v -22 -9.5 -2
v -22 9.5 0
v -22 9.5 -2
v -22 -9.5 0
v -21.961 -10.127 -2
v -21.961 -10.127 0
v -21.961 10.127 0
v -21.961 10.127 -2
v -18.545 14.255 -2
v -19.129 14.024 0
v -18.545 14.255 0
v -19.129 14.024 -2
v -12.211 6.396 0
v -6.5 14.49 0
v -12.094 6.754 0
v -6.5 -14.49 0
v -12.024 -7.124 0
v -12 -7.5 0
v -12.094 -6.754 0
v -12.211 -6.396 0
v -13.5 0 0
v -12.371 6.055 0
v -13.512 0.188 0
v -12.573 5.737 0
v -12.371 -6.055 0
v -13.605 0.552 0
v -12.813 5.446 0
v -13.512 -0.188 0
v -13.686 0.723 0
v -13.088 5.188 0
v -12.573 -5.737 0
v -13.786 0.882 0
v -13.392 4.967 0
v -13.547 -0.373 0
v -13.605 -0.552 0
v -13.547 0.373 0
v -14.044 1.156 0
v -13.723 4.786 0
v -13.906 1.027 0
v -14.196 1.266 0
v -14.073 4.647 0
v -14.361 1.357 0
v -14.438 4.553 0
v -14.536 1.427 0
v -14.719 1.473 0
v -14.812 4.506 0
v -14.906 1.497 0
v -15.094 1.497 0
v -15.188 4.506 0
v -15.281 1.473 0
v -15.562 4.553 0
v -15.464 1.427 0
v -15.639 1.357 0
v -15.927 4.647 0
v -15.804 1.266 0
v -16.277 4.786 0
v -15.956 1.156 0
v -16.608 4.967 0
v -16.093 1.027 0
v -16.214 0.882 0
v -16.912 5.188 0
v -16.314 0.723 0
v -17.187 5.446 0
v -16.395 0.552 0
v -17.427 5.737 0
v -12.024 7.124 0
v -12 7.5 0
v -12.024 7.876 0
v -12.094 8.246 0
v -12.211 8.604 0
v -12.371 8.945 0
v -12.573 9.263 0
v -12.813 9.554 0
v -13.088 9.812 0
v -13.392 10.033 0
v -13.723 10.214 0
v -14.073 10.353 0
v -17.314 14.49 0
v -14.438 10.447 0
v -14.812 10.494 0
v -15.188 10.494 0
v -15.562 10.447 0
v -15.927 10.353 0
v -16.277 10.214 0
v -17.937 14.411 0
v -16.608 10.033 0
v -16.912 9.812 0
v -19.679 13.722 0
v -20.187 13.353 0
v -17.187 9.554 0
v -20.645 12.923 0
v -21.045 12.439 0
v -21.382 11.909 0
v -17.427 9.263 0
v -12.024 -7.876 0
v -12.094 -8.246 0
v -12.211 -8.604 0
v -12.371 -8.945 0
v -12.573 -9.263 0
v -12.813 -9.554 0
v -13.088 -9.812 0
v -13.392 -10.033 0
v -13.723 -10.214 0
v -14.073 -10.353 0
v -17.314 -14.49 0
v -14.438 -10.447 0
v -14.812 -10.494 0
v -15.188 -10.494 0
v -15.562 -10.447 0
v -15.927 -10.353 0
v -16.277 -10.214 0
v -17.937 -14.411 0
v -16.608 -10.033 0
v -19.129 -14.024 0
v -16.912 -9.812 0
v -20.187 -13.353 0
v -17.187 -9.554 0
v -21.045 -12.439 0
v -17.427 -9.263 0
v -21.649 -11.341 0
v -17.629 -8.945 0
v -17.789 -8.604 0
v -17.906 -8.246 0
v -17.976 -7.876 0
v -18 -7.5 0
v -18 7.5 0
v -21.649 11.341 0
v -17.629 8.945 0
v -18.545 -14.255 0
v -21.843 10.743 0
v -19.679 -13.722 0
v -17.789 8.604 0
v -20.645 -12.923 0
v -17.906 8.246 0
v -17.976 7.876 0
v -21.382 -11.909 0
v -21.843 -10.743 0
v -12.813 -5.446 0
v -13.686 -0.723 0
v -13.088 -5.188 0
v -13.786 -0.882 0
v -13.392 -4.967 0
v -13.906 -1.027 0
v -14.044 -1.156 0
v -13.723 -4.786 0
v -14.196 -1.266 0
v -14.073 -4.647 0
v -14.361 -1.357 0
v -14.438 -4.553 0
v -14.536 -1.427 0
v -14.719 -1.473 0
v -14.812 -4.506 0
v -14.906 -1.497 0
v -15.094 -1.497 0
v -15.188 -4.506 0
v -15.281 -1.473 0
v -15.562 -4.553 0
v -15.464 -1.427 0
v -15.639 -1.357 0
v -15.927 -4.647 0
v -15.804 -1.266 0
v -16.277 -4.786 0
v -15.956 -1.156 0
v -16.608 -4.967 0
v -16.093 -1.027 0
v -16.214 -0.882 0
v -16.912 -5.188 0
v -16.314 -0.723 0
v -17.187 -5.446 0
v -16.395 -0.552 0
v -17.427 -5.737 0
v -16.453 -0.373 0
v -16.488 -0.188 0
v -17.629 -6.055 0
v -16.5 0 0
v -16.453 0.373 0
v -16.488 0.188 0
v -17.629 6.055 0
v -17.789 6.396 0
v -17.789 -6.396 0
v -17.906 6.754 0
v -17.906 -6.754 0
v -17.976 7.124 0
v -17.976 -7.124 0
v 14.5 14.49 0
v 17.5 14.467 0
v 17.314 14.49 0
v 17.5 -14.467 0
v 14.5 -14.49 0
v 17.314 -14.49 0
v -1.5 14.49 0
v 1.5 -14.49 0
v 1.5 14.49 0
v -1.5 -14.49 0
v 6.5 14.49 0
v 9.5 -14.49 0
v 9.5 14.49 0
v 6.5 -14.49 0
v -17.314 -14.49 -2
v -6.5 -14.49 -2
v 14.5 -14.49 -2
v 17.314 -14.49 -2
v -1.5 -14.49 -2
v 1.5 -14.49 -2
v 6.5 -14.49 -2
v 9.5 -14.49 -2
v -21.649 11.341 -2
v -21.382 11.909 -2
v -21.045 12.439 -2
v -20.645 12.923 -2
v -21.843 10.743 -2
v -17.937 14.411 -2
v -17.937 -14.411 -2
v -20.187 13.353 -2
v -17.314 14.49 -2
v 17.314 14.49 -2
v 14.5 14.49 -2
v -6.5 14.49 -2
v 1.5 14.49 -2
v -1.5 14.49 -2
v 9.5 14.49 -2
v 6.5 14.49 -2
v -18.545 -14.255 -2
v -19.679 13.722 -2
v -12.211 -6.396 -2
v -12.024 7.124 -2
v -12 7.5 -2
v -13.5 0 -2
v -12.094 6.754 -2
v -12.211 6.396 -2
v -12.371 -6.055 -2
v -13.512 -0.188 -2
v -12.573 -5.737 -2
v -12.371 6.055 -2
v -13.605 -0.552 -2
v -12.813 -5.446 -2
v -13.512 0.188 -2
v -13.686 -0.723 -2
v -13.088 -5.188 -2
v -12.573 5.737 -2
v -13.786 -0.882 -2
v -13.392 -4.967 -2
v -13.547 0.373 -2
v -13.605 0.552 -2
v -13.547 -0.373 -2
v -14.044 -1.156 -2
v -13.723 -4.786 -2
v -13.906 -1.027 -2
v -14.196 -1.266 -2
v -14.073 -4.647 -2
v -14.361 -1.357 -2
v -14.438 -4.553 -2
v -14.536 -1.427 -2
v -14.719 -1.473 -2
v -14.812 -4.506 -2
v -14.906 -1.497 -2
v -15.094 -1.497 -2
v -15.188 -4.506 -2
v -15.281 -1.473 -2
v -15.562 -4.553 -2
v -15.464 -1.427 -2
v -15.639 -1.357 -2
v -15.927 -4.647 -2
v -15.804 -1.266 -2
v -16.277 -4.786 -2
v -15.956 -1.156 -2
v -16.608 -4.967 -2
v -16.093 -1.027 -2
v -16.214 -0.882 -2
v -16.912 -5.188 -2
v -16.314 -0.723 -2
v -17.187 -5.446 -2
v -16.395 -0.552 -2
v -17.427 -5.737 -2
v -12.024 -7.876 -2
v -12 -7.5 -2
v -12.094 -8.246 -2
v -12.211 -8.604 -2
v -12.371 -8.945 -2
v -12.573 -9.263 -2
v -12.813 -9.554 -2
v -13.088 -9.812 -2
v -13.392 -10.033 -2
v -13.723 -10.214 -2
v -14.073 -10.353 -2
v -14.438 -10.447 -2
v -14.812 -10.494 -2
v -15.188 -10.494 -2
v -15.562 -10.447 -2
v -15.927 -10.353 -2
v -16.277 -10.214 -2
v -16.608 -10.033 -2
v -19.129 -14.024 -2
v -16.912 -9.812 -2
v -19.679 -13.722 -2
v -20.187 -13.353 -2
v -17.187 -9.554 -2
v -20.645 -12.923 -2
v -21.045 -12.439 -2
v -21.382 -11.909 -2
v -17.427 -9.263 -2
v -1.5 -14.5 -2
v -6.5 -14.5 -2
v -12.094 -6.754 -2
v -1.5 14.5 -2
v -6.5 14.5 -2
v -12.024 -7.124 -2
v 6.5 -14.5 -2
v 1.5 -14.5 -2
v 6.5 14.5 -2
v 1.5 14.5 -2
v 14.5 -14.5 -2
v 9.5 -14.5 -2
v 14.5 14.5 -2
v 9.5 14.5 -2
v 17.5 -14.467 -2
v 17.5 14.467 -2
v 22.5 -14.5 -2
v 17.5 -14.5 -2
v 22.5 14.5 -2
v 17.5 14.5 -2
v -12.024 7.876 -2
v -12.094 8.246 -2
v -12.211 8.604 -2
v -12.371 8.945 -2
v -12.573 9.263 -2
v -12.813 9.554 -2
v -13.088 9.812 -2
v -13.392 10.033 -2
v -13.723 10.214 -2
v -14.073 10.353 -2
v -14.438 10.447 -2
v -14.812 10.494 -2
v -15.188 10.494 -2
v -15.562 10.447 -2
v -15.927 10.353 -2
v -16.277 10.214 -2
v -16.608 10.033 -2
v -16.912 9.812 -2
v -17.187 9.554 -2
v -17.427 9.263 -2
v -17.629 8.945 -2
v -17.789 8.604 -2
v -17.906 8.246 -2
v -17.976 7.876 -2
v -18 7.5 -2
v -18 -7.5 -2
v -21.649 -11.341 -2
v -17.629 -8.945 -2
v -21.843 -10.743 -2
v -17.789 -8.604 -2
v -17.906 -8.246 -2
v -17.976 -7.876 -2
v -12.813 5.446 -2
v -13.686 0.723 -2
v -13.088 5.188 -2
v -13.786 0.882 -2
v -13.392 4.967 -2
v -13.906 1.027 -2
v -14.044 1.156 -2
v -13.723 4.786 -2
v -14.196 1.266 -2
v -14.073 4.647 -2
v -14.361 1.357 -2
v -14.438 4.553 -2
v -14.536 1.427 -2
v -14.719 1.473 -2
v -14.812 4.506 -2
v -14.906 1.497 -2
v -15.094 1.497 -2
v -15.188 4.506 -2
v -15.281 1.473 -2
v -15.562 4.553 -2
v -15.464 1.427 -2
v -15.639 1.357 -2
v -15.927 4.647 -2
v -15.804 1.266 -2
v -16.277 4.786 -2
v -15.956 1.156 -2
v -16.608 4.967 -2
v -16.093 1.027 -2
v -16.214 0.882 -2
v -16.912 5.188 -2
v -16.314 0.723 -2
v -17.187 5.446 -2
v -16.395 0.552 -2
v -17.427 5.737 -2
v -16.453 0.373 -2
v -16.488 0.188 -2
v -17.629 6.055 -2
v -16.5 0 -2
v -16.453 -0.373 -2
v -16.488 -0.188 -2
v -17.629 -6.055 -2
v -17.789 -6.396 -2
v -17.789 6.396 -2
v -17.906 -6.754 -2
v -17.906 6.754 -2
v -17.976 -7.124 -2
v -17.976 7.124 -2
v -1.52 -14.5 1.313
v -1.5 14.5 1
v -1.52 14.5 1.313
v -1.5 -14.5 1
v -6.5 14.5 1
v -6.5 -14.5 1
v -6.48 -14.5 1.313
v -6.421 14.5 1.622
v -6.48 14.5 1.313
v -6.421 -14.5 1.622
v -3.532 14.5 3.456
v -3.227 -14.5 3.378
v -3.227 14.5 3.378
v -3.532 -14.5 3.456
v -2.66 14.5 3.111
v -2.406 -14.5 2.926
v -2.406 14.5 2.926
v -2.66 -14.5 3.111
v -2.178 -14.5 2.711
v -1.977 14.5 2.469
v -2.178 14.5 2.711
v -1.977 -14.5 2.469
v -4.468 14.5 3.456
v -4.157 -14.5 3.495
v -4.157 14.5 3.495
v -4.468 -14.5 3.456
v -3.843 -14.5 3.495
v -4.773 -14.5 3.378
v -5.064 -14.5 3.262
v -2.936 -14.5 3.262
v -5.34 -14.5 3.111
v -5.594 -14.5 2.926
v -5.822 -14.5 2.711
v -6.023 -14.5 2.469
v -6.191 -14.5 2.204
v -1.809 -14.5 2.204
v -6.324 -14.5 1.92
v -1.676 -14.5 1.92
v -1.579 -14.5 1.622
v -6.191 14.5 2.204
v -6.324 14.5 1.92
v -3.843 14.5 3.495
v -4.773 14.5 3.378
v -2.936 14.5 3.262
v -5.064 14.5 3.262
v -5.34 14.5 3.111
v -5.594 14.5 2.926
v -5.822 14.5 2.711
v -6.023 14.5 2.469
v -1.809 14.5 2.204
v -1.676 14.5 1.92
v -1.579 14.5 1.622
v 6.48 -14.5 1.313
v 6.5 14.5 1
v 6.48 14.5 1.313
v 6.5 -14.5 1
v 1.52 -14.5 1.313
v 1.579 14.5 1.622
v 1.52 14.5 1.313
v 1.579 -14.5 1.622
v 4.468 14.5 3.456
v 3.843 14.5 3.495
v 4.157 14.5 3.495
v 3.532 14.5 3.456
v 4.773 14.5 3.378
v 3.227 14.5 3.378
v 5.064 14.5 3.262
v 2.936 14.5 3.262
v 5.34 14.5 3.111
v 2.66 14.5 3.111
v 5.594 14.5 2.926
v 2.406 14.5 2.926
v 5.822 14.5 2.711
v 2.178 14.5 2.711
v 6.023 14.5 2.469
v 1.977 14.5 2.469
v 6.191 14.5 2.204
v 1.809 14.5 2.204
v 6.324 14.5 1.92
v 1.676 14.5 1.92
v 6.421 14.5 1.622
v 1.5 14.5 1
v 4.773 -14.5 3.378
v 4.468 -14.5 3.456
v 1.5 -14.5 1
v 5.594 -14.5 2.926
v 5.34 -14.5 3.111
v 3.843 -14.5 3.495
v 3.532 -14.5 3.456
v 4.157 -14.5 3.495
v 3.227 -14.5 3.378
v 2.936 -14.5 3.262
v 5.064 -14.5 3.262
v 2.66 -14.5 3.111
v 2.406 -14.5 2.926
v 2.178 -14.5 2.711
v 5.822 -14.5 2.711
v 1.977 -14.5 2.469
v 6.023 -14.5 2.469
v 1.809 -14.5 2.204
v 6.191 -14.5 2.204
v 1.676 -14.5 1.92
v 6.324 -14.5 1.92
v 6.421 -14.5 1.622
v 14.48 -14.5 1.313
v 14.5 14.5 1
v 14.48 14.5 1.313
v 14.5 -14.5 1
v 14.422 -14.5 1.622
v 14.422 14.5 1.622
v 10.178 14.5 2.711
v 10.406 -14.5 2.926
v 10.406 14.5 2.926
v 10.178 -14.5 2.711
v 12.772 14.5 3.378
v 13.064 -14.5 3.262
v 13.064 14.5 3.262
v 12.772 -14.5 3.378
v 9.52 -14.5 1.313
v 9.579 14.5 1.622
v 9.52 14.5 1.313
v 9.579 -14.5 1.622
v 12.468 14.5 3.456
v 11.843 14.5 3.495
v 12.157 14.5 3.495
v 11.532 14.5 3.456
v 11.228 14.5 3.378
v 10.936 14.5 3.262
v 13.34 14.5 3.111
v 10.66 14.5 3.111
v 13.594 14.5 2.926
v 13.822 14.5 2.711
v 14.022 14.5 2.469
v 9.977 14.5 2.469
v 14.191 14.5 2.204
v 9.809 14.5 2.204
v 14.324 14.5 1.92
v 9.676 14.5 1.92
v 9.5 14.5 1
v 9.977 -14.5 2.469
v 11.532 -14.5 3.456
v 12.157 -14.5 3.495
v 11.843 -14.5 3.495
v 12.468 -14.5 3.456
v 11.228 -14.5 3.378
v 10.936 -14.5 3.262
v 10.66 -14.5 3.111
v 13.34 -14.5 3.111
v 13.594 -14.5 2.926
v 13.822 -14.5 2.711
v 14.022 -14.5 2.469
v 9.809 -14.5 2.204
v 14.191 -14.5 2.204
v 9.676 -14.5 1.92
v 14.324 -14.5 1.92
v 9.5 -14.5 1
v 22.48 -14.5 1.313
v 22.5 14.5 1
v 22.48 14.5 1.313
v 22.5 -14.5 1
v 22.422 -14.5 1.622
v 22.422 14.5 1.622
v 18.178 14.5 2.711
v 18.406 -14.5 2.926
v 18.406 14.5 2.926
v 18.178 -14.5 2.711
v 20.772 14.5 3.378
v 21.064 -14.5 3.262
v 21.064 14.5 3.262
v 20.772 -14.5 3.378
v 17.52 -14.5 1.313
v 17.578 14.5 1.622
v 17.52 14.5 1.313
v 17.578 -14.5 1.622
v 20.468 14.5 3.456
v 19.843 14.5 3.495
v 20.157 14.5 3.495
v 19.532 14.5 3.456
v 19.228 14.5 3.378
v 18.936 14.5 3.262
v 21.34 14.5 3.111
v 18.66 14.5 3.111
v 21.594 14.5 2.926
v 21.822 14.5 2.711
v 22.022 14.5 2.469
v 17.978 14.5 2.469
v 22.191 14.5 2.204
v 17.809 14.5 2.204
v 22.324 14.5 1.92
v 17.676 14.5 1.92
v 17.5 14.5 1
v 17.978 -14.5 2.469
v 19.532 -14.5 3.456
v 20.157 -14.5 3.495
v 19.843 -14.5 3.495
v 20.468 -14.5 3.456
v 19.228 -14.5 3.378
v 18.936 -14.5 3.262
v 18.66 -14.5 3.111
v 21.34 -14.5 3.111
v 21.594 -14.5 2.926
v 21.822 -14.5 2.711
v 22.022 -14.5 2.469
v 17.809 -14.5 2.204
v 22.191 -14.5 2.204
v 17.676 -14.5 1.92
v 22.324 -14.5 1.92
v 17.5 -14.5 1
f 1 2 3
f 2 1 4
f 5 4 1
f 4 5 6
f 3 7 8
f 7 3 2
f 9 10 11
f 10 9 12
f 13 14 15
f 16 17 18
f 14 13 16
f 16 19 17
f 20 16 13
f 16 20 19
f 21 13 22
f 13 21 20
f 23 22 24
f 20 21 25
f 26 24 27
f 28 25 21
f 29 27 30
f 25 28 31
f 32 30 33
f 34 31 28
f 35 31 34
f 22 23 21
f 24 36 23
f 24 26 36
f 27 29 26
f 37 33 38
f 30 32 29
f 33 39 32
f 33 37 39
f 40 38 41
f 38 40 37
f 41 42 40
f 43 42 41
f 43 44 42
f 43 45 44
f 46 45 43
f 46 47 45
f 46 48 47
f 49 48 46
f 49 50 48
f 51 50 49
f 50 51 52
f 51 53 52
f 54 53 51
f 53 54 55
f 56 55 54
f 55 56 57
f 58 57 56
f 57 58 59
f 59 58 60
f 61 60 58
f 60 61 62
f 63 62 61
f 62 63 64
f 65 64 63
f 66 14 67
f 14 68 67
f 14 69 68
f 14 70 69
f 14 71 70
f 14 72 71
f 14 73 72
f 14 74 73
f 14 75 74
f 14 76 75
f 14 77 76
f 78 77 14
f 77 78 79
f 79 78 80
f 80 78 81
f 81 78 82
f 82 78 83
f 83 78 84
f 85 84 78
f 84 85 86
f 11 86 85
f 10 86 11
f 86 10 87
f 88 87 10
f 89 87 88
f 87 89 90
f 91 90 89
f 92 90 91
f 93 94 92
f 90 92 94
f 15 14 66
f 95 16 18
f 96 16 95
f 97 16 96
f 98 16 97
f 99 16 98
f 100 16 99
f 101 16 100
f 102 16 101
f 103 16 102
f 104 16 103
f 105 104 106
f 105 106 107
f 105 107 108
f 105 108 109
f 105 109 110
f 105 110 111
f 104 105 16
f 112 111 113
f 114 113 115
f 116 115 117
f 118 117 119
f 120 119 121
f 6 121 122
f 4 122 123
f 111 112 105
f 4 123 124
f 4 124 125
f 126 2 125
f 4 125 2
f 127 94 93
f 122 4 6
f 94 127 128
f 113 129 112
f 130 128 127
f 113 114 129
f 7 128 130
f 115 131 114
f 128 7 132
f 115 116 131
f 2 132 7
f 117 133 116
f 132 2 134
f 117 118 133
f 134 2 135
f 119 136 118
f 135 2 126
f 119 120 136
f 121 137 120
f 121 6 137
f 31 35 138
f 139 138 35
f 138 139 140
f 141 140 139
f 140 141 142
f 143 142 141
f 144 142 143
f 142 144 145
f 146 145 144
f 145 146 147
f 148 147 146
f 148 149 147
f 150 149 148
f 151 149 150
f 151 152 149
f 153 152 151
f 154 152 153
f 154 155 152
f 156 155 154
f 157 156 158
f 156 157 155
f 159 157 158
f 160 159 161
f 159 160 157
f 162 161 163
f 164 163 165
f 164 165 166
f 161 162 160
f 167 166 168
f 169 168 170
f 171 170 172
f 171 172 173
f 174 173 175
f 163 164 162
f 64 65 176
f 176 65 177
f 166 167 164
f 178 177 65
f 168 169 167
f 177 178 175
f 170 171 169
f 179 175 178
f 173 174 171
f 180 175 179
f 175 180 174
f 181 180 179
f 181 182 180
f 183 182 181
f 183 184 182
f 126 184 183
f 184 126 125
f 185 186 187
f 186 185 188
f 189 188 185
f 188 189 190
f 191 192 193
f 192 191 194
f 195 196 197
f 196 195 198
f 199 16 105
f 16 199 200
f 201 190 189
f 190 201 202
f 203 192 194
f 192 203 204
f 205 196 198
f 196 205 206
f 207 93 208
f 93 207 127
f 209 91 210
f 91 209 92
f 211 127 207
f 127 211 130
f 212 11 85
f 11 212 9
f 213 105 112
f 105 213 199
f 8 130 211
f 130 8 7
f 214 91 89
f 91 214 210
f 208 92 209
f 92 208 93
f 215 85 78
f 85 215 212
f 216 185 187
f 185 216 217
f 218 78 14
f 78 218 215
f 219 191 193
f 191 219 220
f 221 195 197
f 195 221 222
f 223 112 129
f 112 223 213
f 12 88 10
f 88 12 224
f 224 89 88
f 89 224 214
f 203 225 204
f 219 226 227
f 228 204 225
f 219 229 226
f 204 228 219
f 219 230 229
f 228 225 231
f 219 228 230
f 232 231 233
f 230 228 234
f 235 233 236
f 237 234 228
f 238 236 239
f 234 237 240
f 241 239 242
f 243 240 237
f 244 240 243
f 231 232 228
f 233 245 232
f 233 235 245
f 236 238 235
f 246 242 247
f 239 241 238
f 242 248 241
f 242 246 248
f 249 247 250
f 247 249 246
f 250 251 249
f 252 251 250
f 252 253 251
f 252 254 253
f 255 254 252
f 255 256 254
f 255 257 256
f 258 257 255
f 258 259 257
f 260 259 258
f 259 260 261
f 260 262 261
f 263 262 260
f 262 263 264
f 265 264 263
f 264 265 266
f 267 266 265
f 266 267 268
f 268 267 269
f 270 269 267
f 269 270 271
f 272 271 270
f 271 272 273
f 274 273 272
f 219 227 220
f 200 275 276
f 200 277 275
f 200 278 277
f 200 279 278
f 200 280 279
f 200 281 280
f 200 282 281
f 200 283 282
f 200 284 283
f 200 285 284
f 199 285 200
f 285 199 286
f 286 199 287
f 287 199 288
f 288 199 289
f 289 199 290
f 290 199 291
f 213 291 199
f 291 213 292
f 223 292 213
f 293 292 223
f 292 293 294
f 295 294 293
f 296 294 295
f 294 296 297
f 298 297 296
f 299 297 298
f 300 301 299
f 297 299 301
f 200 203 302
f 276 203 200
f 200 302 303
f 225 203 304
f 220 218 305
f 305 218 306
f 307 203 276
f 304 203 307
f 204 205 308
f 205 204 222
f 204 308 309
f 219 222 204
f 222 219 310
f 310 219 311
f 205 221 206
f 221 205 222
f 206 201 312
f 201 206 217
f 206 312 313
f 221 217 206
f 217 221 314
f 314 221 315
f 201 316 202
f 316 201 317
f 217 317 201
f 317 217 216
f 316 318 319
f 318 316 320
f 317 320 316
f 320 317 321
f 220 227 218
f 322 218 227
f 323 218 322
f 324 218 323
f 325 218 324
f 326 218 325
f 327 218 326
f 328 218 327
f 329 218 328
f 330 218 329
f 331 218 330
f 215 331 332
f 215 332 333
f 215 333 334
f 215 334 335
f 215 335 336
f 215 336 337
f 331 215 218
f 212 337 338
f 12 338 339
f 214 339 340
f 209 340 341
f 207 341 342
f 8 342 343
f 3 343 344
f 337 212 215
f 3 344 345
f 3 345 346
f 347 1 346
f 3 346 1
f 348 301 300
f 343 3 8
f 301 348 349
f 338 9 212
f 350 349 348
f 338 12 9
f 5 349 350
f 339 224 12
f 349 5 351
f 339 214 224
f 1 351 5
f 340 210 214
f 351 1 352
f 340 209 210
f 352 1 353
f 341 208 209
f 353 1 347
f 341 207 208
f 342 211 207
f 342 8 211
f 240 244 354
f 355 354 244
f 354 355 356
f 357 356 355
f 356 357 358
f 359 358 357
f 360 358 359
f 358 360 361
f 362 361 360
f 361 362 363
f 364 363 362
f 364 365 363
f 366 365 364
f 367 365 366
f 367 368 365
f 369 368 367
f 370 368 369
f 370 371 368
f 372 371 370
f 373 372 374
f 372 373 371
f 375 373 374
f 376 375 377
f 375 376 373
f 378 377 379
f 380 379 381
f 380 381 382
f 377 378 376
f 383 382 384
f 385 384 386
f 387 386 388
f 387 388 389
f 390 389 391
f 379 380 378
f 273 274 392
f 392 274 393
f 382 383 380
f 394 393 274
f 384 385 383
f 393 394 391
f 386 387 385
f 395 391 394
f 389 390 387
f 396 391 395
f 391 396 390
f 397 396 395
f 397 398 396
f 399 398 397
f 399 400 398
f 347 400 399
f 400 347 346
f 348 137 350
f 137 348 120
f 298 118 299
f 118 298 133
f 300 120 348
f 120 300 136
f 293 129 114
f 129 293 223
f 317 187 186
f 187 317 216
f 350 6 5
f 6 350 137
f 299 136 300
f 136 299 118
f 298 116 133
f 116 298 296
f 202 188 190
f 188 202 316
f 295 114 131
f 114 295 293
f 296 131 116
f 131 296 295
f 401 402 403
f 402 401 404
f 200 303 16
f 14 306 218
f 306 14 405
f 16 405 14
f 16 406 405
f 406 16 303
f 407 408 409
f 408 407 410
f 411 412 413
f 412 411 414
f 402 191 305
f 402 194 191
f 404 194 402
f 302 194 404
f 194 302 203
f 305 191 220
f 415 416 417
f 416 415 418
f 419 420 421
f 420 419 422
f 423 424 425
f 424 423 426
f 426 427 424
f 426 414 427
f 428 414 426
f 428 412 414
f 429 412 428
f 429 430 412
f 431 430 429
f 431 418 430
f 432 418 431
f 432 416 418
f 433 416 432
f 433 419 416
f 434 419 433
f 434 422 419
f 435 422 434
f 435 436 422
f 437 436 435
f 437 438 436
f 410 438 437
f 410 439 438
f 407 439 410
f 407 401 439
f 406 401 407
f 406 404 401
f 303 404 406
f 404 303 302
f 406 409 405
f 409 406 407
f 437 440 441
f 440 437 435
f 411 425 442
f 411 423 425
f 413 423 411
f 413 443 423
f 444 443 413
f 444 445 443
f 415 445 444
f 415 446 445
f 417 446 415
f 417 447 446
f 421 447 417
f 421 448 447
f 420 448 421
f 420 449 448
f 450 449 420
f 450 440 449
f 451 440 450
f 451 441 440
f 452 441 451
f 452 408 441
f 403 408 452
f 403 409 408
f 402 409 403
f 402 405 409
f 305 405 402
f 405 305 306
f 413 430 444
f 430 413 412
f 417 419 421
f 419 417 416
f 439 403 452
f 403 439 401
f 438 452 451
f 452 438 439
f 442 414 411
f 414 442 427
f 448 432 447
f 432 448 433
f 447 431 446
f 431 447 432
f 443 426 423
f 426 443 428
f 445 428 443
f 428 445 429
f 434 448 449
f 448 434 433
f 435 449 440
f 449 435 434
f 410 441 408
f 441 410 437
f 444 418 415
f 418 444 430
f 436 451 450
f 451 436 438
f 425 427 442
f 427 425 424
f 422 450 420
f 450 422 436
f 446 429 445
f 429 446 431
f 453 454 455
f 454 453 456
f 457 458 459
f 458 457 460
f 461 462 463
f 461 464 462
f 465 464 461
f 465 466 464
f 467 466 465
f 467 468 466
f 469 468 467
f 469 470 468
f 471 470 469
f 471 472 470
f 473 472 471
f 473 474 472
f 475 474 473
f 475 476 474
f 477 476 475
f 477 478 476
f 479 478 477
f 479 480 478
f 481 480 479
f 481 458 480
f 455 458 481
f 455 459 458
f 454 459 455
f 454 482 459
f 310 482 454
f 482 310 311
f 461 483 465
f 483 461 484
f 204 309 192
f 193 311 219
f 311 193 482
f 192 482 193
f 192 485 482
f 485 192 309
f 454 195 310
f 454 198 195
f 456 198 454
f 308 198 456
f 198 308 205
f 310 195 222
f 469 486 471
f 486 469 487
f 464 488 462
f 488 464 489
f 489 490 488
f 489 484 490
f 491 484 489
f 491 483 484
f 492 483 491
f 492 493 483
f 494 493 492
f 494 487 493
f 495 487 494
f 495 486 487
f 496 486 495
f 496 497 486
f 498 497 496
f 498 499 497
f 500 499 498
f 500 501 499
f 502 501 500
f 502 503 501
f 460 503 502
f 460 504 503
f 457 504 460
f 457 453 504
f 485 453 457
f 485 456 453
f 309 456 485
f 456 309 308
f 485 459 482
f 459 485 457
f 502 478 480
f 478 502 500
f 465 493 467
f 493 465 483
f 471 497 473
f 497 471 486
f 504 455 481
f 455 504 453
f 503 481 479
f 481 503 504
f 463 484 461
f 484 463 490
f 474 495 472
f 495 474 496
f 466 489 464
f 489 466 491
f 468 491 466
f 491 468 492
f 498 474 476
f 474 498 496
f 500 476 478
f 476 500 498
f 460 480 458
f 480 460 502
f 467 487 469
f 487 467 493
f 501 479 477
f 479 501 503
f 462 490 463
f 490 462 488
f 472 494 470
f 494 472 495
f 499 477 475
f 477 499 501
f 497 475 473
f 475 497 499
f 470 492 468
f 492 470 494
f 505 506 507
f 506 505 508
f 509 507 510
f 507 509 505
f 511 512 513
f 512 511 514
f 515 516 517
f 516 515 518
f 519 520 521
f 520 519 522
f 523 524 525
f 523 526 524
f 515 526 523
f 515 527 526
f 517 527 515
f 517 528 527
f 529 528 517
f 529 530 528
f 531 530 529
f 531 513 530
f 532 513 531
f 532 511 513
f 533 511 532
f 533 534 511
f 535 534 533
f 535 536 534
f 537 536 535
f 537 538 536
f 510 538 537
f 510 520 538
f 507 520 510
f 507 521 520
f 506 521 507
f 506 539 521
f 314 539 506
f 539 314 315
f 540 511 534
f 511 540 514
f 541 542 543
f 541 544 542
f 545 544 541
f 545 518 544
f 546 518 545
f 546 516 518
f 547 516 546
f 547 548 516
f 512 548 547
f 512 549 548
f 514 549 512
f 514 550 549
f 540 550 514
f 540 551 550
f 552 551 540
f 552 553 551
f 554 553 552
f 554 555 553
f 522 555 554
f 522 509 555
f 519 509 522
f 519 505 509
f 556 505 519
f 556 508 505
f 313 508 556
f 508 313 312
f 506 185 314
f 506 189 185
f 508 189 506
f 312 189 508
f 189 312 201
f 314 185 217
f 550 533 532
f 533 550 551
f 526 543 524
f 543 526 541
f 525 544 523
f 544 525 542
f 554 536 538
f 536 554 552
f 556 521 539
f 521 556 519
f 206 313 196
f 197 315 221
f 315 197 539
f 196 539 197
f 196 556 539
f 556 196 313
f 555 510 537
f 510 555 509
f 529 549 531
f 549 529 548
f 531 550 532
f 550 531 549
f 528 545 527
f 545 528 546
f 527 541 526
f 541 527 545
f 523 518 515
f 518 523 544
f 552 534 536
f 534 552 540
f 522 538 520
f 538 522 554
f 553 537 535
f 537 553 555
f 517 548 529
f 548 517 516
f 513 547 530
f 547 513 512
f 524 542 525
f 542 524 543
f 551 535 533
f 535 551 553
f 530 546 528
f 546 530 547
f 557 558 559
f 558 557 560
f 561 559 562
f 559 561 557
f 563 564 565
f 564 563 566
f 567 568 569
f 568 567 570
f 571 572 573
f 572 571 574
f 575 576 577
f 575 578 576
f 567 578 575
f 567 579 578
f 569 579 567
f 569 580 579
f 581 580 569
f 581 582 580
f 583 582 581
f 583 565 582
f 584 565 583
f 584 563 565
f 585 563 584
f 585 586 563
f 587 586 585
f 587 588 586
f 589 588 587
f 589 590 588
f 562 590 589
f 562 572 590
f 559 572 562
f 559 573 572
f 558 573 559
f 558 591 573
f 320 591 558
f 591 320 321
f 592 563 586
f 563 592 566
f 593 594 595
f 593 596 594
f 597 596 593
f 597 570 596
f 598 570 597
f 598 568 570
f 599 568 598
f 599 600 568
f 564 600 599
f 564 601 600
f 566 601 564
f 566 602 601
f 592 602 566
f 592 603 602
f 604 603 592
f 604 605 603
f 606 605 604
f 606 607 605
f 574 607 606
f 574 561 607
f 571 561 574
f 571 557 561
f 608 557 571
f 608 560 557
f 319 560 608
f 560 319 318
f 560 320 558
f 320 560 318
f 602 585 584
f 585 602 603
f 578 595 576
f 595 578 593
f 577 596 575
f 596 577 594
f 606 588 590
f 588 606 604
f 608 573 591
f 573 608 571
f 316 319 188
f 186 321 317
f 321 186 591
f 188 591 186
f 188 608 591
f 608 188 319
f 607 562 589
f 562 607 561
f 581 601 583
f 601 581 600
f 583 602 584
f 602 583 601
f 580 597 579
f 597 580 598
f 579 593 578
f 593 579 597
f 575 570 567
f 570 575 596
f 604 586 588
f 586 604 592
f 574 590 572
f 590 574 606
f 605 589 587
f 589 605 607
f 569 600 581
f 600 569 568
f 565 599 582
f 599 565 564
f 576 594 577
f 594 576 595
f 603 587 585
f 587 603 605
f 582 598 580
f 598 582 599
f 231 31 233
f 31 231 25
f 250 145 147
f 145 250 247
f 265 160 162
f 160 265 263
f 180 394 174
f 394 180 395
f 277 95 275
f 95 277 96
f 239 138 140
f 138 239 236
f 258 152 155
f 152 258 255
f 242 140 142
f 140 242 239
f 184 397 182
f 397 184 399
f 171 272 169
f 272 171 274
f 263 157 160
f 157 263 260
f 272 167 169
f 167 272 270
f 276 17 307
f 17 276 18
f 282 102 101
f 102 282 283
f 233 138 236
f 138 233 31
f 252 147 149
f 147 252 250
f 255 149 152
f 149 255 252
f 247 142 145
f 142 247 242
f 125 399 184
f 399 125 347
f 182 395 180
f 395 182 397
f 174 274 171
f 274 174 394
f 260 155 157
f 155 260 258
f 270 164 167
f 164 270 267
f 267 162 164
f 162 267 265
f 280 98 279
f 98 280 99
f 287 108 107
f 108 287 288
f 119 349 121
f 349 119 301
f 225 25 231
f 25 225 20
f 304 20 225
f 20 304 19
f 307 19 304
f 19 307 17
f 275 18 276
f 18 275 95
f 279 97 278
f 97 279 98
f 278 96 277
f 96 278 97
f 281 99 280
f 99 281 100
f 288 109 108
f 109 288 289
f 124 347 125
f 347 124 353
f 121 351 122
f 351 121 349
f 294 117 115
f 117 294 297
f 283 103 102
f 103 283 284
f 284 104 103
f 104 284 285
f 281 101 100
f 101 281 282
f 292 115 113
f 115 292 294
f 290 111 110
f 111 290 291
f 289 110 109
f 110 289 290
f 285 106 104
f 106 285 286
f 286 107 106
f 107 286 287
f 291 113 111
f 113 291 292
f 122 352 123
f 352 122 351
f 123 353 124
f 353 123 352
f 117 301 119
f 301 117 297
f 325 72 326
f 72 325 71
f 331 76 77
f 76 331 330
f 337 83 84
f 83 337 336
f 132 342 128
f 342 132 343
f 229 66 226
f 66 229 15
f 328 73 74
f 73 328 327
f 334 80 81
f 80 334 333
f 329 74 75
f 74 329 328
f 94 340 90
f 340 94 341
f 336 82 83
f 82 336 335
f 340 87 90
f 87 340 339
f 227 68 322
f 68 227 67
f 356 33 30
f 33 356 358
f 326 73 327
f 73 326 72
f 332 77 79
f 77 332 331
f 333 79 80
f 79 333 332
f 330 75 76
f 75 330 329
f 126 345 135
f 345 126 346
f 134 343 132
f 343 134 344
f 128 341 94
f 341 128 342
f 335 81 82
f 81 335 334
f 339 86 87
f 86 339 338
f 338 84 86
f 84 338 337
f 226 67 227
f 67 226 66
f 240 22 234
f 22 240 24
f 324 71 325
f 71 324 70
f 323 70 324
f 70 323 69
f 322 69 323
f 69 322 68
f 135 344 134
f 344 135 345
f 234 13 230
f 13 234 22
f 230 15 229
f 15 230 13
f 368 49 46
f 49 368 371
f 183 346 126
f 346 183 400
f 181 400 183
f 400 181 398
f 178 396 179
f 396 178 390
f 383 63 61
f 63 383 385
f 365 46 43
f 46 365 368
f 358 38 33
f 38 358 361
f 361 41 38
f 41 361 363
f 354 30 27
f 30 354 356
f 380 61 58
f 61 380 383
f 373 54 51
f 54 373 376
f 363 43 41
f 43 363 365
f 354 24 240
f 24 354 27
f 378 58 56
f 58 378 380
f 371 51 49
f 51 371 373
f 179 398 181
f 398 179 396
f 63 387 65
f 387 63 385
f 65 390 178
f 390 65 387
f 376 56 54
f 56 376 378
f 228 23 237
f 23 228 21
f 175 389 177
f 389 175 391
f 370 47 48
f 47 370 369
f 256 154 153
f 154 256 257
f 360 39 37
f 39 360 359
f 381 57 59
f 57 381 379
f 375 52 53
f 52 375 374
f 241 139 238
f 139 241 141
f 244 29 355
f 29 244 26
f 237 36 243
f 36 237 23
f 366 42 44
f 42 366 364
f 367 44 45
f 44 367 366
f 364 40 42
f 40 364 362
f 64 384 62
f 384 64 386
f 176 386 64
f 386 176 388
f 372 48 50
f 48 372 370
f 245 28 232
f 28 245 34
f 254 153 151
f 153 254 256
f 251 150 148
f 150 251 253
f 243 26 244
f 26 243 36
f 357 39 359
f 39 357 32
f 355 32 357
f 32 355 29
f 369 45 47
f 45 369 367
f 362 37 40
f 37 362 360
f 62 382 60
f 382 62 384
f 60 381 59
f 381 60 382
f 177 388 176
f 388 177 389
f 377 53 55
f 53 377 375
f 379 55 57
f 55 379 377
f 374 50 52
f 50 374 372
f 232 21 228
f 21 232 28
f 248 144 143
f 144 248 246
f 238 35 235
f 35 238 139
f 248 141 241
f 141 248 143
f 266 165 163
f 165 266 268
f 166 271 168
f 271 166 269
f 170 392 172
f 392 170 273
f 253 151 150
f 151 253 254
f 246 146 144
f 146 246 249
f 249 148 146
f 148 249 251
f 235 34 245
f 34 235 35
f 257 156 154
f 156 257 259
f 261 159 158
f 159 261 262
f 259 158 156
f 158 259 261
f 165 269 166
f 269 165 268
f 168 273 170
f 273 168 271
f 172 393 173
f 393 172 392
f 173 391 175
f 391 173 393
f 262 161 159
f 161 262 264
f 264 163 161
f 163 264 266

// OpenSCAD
$fn = 50;


difference() {
	union() {
		translate(v = [0, 0, -2]) {
			hull() {
				translate(v = [-17.0000000000, 9.5000000000, 0]) {
					cylinder(h = 2, r = 5);
				}
				translate(v = [17.0000000000, 9.5000000000, 0]) {
					cylinder(h = 2, r = 5);
				}
				translate(v = [-17.0000000000, -9.5000000000, 0]) {
					cylinder(h = 2, r = 5);
				}
				translate(v = [17.0000000000, -9.5000000000, 0]) {
					cylinder(h = 2, r = 5);
				}
			}
		}
		translate(v = [-4.0000000000, 14.5000000000, -1.5000000000]) {
			rotate(a = [90, 0, 0]) {
				hull() {
					translate(v = [-0.0000000000, 2.5000000000, 0]) {
						cylinder(h = 29, r = 2.5000000000);
					}
					translate(v = [0.0000000000, 2.5000000000, 0]) {
						cylinder(h = 29, r = 2.5000000000);
					}
					translate(v = [-0.0000000000, -2.5000000000, 0]) {
						cylinder(h = 29, r = 2.5000000000);
					}
					translate(v = [0.0000000000, -2.5000000000, 0]) {
						cylinder(h = 29, r = 2.5000000000);
					}
				}
			}
		}
		translate(v = [4.0000000000, 14.5000000000, -1.5000000000]) {
			rotate(a = [90, 0, 0]) {
				hull() {
					translate(v = [-0.0000000000, 2.5000000000, 0]) {
						cylinder(h = 29, r = 2.5000000000);
					}
					translate(v = [0.0000000000, 2.5000000000, 0]) {
						cylinder(h = 29, r = 2.5000000000);
					}
					translate(v = [-0.0000000000, -2.5000000000, 0]) {
						cylinder(h = 29, r = 2.5000000000);
					}
					translate(v = [0.0000000000, -2.5000000000, 0]) {
						cylinder(h = 29, r = 2.5000000000);
					}
				}
			}
		}
		translate(v = [12.0000000000, 14.5000000000, -1.5000000000]) {
			rotate(a = [90, 0, 0]) {
				hull() {
					translate(v = [-0.0000000000, 2.5000000000, 0]) {
						cylinder(h = 29, r = 2.5000000000);
					}
					translate(v = [0.0000000000, 2.5000000000, 0]) {
						cylinder(h = 29, r = 2.5000000000);
					}
					translate(v = [-0.0000000000, -2.5000000000, 0]) {
						cylinder(h = 29, r = 2.5000000000);
					}
					translate(v = [0.0000000000, -2.5000000000, 0]) {
						cylinder(h = 29, r = 2.5000000000);
					}
				}
			}
		}
		translate(v = [20.0000000000, 14.5000000000, -1.5000000000]) {
			rotate(a = [90, 0, 0]) {
				hull() {
					translate(v = [-0.0000000000, 2.5000000000, 0]) {
						cylinder(h = 29, r = 2.5000000000);
					}
					translate(v = [0.0000000000, 2.5000000000, 0]) {
						cylinder(h = 29, r = 2.5000000000);
					}
					translate(v = [-0.0000000000, -2.5000000000, 0]) {
						cylinder(h = 29, r = 2.5000000000);
					}
					translate(v = [0.0000000000, -2.5000000000, 0]) {
						cylinder(h = 29, r = 2.5000000000);
					}
				}
			}
		}
	}
	union() {
		translate(v = [-250.0000000000, -250.0000000000, -502]) {
			cube(size = [500, 500, 500]);
		}
		translate(v = [-250.0000000000, -250.0000000000, -502]) {
			cube(size = [500, 500, 500]);
		}
		translate(v = [-250.0000000000, -250.0000000000, -502]) {
			cube(size = [500, 500, 500]);
		}
		translate(v = [-15.0000000000, -7.5000000000, -100.0000000000]) {
			cylinder(h = 200, r = 3.0000000000);
		}
		translate(v = [-15.0000000000, 7.5000000000, -100.0000000000]) {
			cylinder(h = 200, r = 3.0000000000);
		}
		translate(v = [-15.0000000000, -7.5000000000, -100.0000000000]) {
			cylinder(h = 200, r = 1.5000000000);
		}
		translate(v = [-15.0000000000, 0.0000000000, -100.0000000000]) {
			cylinder(h = 200, r = 1.5000000000);
		}
		translate(v = [-15.0000000000, 7.5000000000, -100.0000000000]) {
			cylinder(h = 200, r = 1.5000000000);
		}
		translate(v = [-15.0000000000, -7.5000000000, -100.0000000000]) {
			cylinder(h = 200, r = 1.5000000000);
		}
		translate(v = [-15.0000000000, 0.0000000000, -100.0000000000]) {
			cylinder(h = 200, r = 1.5000000000);
		}
		translate(v = [-15.0000000000, 7.5000000000, -100.0000000000]) {
			cylinder(h = 200, r = 1.5000000000);
		}
		translate(v = [-15.0000000000, -7.5000000000, -100.0000000000]) {
			cylinder(h = 200, r = 1.5000000000);
		}
		translate(v = [-15.0000000000, 0.0000000000, -100.0000000000]) {
			cylinder(h = 200, r = 1.5000000000);
		}
		translate(v = [-15.0000000000, 7.5000000000, -100.0000000000]) {
			cylinder(h = 200, r = 1.5000000000);
		}
	}
}
